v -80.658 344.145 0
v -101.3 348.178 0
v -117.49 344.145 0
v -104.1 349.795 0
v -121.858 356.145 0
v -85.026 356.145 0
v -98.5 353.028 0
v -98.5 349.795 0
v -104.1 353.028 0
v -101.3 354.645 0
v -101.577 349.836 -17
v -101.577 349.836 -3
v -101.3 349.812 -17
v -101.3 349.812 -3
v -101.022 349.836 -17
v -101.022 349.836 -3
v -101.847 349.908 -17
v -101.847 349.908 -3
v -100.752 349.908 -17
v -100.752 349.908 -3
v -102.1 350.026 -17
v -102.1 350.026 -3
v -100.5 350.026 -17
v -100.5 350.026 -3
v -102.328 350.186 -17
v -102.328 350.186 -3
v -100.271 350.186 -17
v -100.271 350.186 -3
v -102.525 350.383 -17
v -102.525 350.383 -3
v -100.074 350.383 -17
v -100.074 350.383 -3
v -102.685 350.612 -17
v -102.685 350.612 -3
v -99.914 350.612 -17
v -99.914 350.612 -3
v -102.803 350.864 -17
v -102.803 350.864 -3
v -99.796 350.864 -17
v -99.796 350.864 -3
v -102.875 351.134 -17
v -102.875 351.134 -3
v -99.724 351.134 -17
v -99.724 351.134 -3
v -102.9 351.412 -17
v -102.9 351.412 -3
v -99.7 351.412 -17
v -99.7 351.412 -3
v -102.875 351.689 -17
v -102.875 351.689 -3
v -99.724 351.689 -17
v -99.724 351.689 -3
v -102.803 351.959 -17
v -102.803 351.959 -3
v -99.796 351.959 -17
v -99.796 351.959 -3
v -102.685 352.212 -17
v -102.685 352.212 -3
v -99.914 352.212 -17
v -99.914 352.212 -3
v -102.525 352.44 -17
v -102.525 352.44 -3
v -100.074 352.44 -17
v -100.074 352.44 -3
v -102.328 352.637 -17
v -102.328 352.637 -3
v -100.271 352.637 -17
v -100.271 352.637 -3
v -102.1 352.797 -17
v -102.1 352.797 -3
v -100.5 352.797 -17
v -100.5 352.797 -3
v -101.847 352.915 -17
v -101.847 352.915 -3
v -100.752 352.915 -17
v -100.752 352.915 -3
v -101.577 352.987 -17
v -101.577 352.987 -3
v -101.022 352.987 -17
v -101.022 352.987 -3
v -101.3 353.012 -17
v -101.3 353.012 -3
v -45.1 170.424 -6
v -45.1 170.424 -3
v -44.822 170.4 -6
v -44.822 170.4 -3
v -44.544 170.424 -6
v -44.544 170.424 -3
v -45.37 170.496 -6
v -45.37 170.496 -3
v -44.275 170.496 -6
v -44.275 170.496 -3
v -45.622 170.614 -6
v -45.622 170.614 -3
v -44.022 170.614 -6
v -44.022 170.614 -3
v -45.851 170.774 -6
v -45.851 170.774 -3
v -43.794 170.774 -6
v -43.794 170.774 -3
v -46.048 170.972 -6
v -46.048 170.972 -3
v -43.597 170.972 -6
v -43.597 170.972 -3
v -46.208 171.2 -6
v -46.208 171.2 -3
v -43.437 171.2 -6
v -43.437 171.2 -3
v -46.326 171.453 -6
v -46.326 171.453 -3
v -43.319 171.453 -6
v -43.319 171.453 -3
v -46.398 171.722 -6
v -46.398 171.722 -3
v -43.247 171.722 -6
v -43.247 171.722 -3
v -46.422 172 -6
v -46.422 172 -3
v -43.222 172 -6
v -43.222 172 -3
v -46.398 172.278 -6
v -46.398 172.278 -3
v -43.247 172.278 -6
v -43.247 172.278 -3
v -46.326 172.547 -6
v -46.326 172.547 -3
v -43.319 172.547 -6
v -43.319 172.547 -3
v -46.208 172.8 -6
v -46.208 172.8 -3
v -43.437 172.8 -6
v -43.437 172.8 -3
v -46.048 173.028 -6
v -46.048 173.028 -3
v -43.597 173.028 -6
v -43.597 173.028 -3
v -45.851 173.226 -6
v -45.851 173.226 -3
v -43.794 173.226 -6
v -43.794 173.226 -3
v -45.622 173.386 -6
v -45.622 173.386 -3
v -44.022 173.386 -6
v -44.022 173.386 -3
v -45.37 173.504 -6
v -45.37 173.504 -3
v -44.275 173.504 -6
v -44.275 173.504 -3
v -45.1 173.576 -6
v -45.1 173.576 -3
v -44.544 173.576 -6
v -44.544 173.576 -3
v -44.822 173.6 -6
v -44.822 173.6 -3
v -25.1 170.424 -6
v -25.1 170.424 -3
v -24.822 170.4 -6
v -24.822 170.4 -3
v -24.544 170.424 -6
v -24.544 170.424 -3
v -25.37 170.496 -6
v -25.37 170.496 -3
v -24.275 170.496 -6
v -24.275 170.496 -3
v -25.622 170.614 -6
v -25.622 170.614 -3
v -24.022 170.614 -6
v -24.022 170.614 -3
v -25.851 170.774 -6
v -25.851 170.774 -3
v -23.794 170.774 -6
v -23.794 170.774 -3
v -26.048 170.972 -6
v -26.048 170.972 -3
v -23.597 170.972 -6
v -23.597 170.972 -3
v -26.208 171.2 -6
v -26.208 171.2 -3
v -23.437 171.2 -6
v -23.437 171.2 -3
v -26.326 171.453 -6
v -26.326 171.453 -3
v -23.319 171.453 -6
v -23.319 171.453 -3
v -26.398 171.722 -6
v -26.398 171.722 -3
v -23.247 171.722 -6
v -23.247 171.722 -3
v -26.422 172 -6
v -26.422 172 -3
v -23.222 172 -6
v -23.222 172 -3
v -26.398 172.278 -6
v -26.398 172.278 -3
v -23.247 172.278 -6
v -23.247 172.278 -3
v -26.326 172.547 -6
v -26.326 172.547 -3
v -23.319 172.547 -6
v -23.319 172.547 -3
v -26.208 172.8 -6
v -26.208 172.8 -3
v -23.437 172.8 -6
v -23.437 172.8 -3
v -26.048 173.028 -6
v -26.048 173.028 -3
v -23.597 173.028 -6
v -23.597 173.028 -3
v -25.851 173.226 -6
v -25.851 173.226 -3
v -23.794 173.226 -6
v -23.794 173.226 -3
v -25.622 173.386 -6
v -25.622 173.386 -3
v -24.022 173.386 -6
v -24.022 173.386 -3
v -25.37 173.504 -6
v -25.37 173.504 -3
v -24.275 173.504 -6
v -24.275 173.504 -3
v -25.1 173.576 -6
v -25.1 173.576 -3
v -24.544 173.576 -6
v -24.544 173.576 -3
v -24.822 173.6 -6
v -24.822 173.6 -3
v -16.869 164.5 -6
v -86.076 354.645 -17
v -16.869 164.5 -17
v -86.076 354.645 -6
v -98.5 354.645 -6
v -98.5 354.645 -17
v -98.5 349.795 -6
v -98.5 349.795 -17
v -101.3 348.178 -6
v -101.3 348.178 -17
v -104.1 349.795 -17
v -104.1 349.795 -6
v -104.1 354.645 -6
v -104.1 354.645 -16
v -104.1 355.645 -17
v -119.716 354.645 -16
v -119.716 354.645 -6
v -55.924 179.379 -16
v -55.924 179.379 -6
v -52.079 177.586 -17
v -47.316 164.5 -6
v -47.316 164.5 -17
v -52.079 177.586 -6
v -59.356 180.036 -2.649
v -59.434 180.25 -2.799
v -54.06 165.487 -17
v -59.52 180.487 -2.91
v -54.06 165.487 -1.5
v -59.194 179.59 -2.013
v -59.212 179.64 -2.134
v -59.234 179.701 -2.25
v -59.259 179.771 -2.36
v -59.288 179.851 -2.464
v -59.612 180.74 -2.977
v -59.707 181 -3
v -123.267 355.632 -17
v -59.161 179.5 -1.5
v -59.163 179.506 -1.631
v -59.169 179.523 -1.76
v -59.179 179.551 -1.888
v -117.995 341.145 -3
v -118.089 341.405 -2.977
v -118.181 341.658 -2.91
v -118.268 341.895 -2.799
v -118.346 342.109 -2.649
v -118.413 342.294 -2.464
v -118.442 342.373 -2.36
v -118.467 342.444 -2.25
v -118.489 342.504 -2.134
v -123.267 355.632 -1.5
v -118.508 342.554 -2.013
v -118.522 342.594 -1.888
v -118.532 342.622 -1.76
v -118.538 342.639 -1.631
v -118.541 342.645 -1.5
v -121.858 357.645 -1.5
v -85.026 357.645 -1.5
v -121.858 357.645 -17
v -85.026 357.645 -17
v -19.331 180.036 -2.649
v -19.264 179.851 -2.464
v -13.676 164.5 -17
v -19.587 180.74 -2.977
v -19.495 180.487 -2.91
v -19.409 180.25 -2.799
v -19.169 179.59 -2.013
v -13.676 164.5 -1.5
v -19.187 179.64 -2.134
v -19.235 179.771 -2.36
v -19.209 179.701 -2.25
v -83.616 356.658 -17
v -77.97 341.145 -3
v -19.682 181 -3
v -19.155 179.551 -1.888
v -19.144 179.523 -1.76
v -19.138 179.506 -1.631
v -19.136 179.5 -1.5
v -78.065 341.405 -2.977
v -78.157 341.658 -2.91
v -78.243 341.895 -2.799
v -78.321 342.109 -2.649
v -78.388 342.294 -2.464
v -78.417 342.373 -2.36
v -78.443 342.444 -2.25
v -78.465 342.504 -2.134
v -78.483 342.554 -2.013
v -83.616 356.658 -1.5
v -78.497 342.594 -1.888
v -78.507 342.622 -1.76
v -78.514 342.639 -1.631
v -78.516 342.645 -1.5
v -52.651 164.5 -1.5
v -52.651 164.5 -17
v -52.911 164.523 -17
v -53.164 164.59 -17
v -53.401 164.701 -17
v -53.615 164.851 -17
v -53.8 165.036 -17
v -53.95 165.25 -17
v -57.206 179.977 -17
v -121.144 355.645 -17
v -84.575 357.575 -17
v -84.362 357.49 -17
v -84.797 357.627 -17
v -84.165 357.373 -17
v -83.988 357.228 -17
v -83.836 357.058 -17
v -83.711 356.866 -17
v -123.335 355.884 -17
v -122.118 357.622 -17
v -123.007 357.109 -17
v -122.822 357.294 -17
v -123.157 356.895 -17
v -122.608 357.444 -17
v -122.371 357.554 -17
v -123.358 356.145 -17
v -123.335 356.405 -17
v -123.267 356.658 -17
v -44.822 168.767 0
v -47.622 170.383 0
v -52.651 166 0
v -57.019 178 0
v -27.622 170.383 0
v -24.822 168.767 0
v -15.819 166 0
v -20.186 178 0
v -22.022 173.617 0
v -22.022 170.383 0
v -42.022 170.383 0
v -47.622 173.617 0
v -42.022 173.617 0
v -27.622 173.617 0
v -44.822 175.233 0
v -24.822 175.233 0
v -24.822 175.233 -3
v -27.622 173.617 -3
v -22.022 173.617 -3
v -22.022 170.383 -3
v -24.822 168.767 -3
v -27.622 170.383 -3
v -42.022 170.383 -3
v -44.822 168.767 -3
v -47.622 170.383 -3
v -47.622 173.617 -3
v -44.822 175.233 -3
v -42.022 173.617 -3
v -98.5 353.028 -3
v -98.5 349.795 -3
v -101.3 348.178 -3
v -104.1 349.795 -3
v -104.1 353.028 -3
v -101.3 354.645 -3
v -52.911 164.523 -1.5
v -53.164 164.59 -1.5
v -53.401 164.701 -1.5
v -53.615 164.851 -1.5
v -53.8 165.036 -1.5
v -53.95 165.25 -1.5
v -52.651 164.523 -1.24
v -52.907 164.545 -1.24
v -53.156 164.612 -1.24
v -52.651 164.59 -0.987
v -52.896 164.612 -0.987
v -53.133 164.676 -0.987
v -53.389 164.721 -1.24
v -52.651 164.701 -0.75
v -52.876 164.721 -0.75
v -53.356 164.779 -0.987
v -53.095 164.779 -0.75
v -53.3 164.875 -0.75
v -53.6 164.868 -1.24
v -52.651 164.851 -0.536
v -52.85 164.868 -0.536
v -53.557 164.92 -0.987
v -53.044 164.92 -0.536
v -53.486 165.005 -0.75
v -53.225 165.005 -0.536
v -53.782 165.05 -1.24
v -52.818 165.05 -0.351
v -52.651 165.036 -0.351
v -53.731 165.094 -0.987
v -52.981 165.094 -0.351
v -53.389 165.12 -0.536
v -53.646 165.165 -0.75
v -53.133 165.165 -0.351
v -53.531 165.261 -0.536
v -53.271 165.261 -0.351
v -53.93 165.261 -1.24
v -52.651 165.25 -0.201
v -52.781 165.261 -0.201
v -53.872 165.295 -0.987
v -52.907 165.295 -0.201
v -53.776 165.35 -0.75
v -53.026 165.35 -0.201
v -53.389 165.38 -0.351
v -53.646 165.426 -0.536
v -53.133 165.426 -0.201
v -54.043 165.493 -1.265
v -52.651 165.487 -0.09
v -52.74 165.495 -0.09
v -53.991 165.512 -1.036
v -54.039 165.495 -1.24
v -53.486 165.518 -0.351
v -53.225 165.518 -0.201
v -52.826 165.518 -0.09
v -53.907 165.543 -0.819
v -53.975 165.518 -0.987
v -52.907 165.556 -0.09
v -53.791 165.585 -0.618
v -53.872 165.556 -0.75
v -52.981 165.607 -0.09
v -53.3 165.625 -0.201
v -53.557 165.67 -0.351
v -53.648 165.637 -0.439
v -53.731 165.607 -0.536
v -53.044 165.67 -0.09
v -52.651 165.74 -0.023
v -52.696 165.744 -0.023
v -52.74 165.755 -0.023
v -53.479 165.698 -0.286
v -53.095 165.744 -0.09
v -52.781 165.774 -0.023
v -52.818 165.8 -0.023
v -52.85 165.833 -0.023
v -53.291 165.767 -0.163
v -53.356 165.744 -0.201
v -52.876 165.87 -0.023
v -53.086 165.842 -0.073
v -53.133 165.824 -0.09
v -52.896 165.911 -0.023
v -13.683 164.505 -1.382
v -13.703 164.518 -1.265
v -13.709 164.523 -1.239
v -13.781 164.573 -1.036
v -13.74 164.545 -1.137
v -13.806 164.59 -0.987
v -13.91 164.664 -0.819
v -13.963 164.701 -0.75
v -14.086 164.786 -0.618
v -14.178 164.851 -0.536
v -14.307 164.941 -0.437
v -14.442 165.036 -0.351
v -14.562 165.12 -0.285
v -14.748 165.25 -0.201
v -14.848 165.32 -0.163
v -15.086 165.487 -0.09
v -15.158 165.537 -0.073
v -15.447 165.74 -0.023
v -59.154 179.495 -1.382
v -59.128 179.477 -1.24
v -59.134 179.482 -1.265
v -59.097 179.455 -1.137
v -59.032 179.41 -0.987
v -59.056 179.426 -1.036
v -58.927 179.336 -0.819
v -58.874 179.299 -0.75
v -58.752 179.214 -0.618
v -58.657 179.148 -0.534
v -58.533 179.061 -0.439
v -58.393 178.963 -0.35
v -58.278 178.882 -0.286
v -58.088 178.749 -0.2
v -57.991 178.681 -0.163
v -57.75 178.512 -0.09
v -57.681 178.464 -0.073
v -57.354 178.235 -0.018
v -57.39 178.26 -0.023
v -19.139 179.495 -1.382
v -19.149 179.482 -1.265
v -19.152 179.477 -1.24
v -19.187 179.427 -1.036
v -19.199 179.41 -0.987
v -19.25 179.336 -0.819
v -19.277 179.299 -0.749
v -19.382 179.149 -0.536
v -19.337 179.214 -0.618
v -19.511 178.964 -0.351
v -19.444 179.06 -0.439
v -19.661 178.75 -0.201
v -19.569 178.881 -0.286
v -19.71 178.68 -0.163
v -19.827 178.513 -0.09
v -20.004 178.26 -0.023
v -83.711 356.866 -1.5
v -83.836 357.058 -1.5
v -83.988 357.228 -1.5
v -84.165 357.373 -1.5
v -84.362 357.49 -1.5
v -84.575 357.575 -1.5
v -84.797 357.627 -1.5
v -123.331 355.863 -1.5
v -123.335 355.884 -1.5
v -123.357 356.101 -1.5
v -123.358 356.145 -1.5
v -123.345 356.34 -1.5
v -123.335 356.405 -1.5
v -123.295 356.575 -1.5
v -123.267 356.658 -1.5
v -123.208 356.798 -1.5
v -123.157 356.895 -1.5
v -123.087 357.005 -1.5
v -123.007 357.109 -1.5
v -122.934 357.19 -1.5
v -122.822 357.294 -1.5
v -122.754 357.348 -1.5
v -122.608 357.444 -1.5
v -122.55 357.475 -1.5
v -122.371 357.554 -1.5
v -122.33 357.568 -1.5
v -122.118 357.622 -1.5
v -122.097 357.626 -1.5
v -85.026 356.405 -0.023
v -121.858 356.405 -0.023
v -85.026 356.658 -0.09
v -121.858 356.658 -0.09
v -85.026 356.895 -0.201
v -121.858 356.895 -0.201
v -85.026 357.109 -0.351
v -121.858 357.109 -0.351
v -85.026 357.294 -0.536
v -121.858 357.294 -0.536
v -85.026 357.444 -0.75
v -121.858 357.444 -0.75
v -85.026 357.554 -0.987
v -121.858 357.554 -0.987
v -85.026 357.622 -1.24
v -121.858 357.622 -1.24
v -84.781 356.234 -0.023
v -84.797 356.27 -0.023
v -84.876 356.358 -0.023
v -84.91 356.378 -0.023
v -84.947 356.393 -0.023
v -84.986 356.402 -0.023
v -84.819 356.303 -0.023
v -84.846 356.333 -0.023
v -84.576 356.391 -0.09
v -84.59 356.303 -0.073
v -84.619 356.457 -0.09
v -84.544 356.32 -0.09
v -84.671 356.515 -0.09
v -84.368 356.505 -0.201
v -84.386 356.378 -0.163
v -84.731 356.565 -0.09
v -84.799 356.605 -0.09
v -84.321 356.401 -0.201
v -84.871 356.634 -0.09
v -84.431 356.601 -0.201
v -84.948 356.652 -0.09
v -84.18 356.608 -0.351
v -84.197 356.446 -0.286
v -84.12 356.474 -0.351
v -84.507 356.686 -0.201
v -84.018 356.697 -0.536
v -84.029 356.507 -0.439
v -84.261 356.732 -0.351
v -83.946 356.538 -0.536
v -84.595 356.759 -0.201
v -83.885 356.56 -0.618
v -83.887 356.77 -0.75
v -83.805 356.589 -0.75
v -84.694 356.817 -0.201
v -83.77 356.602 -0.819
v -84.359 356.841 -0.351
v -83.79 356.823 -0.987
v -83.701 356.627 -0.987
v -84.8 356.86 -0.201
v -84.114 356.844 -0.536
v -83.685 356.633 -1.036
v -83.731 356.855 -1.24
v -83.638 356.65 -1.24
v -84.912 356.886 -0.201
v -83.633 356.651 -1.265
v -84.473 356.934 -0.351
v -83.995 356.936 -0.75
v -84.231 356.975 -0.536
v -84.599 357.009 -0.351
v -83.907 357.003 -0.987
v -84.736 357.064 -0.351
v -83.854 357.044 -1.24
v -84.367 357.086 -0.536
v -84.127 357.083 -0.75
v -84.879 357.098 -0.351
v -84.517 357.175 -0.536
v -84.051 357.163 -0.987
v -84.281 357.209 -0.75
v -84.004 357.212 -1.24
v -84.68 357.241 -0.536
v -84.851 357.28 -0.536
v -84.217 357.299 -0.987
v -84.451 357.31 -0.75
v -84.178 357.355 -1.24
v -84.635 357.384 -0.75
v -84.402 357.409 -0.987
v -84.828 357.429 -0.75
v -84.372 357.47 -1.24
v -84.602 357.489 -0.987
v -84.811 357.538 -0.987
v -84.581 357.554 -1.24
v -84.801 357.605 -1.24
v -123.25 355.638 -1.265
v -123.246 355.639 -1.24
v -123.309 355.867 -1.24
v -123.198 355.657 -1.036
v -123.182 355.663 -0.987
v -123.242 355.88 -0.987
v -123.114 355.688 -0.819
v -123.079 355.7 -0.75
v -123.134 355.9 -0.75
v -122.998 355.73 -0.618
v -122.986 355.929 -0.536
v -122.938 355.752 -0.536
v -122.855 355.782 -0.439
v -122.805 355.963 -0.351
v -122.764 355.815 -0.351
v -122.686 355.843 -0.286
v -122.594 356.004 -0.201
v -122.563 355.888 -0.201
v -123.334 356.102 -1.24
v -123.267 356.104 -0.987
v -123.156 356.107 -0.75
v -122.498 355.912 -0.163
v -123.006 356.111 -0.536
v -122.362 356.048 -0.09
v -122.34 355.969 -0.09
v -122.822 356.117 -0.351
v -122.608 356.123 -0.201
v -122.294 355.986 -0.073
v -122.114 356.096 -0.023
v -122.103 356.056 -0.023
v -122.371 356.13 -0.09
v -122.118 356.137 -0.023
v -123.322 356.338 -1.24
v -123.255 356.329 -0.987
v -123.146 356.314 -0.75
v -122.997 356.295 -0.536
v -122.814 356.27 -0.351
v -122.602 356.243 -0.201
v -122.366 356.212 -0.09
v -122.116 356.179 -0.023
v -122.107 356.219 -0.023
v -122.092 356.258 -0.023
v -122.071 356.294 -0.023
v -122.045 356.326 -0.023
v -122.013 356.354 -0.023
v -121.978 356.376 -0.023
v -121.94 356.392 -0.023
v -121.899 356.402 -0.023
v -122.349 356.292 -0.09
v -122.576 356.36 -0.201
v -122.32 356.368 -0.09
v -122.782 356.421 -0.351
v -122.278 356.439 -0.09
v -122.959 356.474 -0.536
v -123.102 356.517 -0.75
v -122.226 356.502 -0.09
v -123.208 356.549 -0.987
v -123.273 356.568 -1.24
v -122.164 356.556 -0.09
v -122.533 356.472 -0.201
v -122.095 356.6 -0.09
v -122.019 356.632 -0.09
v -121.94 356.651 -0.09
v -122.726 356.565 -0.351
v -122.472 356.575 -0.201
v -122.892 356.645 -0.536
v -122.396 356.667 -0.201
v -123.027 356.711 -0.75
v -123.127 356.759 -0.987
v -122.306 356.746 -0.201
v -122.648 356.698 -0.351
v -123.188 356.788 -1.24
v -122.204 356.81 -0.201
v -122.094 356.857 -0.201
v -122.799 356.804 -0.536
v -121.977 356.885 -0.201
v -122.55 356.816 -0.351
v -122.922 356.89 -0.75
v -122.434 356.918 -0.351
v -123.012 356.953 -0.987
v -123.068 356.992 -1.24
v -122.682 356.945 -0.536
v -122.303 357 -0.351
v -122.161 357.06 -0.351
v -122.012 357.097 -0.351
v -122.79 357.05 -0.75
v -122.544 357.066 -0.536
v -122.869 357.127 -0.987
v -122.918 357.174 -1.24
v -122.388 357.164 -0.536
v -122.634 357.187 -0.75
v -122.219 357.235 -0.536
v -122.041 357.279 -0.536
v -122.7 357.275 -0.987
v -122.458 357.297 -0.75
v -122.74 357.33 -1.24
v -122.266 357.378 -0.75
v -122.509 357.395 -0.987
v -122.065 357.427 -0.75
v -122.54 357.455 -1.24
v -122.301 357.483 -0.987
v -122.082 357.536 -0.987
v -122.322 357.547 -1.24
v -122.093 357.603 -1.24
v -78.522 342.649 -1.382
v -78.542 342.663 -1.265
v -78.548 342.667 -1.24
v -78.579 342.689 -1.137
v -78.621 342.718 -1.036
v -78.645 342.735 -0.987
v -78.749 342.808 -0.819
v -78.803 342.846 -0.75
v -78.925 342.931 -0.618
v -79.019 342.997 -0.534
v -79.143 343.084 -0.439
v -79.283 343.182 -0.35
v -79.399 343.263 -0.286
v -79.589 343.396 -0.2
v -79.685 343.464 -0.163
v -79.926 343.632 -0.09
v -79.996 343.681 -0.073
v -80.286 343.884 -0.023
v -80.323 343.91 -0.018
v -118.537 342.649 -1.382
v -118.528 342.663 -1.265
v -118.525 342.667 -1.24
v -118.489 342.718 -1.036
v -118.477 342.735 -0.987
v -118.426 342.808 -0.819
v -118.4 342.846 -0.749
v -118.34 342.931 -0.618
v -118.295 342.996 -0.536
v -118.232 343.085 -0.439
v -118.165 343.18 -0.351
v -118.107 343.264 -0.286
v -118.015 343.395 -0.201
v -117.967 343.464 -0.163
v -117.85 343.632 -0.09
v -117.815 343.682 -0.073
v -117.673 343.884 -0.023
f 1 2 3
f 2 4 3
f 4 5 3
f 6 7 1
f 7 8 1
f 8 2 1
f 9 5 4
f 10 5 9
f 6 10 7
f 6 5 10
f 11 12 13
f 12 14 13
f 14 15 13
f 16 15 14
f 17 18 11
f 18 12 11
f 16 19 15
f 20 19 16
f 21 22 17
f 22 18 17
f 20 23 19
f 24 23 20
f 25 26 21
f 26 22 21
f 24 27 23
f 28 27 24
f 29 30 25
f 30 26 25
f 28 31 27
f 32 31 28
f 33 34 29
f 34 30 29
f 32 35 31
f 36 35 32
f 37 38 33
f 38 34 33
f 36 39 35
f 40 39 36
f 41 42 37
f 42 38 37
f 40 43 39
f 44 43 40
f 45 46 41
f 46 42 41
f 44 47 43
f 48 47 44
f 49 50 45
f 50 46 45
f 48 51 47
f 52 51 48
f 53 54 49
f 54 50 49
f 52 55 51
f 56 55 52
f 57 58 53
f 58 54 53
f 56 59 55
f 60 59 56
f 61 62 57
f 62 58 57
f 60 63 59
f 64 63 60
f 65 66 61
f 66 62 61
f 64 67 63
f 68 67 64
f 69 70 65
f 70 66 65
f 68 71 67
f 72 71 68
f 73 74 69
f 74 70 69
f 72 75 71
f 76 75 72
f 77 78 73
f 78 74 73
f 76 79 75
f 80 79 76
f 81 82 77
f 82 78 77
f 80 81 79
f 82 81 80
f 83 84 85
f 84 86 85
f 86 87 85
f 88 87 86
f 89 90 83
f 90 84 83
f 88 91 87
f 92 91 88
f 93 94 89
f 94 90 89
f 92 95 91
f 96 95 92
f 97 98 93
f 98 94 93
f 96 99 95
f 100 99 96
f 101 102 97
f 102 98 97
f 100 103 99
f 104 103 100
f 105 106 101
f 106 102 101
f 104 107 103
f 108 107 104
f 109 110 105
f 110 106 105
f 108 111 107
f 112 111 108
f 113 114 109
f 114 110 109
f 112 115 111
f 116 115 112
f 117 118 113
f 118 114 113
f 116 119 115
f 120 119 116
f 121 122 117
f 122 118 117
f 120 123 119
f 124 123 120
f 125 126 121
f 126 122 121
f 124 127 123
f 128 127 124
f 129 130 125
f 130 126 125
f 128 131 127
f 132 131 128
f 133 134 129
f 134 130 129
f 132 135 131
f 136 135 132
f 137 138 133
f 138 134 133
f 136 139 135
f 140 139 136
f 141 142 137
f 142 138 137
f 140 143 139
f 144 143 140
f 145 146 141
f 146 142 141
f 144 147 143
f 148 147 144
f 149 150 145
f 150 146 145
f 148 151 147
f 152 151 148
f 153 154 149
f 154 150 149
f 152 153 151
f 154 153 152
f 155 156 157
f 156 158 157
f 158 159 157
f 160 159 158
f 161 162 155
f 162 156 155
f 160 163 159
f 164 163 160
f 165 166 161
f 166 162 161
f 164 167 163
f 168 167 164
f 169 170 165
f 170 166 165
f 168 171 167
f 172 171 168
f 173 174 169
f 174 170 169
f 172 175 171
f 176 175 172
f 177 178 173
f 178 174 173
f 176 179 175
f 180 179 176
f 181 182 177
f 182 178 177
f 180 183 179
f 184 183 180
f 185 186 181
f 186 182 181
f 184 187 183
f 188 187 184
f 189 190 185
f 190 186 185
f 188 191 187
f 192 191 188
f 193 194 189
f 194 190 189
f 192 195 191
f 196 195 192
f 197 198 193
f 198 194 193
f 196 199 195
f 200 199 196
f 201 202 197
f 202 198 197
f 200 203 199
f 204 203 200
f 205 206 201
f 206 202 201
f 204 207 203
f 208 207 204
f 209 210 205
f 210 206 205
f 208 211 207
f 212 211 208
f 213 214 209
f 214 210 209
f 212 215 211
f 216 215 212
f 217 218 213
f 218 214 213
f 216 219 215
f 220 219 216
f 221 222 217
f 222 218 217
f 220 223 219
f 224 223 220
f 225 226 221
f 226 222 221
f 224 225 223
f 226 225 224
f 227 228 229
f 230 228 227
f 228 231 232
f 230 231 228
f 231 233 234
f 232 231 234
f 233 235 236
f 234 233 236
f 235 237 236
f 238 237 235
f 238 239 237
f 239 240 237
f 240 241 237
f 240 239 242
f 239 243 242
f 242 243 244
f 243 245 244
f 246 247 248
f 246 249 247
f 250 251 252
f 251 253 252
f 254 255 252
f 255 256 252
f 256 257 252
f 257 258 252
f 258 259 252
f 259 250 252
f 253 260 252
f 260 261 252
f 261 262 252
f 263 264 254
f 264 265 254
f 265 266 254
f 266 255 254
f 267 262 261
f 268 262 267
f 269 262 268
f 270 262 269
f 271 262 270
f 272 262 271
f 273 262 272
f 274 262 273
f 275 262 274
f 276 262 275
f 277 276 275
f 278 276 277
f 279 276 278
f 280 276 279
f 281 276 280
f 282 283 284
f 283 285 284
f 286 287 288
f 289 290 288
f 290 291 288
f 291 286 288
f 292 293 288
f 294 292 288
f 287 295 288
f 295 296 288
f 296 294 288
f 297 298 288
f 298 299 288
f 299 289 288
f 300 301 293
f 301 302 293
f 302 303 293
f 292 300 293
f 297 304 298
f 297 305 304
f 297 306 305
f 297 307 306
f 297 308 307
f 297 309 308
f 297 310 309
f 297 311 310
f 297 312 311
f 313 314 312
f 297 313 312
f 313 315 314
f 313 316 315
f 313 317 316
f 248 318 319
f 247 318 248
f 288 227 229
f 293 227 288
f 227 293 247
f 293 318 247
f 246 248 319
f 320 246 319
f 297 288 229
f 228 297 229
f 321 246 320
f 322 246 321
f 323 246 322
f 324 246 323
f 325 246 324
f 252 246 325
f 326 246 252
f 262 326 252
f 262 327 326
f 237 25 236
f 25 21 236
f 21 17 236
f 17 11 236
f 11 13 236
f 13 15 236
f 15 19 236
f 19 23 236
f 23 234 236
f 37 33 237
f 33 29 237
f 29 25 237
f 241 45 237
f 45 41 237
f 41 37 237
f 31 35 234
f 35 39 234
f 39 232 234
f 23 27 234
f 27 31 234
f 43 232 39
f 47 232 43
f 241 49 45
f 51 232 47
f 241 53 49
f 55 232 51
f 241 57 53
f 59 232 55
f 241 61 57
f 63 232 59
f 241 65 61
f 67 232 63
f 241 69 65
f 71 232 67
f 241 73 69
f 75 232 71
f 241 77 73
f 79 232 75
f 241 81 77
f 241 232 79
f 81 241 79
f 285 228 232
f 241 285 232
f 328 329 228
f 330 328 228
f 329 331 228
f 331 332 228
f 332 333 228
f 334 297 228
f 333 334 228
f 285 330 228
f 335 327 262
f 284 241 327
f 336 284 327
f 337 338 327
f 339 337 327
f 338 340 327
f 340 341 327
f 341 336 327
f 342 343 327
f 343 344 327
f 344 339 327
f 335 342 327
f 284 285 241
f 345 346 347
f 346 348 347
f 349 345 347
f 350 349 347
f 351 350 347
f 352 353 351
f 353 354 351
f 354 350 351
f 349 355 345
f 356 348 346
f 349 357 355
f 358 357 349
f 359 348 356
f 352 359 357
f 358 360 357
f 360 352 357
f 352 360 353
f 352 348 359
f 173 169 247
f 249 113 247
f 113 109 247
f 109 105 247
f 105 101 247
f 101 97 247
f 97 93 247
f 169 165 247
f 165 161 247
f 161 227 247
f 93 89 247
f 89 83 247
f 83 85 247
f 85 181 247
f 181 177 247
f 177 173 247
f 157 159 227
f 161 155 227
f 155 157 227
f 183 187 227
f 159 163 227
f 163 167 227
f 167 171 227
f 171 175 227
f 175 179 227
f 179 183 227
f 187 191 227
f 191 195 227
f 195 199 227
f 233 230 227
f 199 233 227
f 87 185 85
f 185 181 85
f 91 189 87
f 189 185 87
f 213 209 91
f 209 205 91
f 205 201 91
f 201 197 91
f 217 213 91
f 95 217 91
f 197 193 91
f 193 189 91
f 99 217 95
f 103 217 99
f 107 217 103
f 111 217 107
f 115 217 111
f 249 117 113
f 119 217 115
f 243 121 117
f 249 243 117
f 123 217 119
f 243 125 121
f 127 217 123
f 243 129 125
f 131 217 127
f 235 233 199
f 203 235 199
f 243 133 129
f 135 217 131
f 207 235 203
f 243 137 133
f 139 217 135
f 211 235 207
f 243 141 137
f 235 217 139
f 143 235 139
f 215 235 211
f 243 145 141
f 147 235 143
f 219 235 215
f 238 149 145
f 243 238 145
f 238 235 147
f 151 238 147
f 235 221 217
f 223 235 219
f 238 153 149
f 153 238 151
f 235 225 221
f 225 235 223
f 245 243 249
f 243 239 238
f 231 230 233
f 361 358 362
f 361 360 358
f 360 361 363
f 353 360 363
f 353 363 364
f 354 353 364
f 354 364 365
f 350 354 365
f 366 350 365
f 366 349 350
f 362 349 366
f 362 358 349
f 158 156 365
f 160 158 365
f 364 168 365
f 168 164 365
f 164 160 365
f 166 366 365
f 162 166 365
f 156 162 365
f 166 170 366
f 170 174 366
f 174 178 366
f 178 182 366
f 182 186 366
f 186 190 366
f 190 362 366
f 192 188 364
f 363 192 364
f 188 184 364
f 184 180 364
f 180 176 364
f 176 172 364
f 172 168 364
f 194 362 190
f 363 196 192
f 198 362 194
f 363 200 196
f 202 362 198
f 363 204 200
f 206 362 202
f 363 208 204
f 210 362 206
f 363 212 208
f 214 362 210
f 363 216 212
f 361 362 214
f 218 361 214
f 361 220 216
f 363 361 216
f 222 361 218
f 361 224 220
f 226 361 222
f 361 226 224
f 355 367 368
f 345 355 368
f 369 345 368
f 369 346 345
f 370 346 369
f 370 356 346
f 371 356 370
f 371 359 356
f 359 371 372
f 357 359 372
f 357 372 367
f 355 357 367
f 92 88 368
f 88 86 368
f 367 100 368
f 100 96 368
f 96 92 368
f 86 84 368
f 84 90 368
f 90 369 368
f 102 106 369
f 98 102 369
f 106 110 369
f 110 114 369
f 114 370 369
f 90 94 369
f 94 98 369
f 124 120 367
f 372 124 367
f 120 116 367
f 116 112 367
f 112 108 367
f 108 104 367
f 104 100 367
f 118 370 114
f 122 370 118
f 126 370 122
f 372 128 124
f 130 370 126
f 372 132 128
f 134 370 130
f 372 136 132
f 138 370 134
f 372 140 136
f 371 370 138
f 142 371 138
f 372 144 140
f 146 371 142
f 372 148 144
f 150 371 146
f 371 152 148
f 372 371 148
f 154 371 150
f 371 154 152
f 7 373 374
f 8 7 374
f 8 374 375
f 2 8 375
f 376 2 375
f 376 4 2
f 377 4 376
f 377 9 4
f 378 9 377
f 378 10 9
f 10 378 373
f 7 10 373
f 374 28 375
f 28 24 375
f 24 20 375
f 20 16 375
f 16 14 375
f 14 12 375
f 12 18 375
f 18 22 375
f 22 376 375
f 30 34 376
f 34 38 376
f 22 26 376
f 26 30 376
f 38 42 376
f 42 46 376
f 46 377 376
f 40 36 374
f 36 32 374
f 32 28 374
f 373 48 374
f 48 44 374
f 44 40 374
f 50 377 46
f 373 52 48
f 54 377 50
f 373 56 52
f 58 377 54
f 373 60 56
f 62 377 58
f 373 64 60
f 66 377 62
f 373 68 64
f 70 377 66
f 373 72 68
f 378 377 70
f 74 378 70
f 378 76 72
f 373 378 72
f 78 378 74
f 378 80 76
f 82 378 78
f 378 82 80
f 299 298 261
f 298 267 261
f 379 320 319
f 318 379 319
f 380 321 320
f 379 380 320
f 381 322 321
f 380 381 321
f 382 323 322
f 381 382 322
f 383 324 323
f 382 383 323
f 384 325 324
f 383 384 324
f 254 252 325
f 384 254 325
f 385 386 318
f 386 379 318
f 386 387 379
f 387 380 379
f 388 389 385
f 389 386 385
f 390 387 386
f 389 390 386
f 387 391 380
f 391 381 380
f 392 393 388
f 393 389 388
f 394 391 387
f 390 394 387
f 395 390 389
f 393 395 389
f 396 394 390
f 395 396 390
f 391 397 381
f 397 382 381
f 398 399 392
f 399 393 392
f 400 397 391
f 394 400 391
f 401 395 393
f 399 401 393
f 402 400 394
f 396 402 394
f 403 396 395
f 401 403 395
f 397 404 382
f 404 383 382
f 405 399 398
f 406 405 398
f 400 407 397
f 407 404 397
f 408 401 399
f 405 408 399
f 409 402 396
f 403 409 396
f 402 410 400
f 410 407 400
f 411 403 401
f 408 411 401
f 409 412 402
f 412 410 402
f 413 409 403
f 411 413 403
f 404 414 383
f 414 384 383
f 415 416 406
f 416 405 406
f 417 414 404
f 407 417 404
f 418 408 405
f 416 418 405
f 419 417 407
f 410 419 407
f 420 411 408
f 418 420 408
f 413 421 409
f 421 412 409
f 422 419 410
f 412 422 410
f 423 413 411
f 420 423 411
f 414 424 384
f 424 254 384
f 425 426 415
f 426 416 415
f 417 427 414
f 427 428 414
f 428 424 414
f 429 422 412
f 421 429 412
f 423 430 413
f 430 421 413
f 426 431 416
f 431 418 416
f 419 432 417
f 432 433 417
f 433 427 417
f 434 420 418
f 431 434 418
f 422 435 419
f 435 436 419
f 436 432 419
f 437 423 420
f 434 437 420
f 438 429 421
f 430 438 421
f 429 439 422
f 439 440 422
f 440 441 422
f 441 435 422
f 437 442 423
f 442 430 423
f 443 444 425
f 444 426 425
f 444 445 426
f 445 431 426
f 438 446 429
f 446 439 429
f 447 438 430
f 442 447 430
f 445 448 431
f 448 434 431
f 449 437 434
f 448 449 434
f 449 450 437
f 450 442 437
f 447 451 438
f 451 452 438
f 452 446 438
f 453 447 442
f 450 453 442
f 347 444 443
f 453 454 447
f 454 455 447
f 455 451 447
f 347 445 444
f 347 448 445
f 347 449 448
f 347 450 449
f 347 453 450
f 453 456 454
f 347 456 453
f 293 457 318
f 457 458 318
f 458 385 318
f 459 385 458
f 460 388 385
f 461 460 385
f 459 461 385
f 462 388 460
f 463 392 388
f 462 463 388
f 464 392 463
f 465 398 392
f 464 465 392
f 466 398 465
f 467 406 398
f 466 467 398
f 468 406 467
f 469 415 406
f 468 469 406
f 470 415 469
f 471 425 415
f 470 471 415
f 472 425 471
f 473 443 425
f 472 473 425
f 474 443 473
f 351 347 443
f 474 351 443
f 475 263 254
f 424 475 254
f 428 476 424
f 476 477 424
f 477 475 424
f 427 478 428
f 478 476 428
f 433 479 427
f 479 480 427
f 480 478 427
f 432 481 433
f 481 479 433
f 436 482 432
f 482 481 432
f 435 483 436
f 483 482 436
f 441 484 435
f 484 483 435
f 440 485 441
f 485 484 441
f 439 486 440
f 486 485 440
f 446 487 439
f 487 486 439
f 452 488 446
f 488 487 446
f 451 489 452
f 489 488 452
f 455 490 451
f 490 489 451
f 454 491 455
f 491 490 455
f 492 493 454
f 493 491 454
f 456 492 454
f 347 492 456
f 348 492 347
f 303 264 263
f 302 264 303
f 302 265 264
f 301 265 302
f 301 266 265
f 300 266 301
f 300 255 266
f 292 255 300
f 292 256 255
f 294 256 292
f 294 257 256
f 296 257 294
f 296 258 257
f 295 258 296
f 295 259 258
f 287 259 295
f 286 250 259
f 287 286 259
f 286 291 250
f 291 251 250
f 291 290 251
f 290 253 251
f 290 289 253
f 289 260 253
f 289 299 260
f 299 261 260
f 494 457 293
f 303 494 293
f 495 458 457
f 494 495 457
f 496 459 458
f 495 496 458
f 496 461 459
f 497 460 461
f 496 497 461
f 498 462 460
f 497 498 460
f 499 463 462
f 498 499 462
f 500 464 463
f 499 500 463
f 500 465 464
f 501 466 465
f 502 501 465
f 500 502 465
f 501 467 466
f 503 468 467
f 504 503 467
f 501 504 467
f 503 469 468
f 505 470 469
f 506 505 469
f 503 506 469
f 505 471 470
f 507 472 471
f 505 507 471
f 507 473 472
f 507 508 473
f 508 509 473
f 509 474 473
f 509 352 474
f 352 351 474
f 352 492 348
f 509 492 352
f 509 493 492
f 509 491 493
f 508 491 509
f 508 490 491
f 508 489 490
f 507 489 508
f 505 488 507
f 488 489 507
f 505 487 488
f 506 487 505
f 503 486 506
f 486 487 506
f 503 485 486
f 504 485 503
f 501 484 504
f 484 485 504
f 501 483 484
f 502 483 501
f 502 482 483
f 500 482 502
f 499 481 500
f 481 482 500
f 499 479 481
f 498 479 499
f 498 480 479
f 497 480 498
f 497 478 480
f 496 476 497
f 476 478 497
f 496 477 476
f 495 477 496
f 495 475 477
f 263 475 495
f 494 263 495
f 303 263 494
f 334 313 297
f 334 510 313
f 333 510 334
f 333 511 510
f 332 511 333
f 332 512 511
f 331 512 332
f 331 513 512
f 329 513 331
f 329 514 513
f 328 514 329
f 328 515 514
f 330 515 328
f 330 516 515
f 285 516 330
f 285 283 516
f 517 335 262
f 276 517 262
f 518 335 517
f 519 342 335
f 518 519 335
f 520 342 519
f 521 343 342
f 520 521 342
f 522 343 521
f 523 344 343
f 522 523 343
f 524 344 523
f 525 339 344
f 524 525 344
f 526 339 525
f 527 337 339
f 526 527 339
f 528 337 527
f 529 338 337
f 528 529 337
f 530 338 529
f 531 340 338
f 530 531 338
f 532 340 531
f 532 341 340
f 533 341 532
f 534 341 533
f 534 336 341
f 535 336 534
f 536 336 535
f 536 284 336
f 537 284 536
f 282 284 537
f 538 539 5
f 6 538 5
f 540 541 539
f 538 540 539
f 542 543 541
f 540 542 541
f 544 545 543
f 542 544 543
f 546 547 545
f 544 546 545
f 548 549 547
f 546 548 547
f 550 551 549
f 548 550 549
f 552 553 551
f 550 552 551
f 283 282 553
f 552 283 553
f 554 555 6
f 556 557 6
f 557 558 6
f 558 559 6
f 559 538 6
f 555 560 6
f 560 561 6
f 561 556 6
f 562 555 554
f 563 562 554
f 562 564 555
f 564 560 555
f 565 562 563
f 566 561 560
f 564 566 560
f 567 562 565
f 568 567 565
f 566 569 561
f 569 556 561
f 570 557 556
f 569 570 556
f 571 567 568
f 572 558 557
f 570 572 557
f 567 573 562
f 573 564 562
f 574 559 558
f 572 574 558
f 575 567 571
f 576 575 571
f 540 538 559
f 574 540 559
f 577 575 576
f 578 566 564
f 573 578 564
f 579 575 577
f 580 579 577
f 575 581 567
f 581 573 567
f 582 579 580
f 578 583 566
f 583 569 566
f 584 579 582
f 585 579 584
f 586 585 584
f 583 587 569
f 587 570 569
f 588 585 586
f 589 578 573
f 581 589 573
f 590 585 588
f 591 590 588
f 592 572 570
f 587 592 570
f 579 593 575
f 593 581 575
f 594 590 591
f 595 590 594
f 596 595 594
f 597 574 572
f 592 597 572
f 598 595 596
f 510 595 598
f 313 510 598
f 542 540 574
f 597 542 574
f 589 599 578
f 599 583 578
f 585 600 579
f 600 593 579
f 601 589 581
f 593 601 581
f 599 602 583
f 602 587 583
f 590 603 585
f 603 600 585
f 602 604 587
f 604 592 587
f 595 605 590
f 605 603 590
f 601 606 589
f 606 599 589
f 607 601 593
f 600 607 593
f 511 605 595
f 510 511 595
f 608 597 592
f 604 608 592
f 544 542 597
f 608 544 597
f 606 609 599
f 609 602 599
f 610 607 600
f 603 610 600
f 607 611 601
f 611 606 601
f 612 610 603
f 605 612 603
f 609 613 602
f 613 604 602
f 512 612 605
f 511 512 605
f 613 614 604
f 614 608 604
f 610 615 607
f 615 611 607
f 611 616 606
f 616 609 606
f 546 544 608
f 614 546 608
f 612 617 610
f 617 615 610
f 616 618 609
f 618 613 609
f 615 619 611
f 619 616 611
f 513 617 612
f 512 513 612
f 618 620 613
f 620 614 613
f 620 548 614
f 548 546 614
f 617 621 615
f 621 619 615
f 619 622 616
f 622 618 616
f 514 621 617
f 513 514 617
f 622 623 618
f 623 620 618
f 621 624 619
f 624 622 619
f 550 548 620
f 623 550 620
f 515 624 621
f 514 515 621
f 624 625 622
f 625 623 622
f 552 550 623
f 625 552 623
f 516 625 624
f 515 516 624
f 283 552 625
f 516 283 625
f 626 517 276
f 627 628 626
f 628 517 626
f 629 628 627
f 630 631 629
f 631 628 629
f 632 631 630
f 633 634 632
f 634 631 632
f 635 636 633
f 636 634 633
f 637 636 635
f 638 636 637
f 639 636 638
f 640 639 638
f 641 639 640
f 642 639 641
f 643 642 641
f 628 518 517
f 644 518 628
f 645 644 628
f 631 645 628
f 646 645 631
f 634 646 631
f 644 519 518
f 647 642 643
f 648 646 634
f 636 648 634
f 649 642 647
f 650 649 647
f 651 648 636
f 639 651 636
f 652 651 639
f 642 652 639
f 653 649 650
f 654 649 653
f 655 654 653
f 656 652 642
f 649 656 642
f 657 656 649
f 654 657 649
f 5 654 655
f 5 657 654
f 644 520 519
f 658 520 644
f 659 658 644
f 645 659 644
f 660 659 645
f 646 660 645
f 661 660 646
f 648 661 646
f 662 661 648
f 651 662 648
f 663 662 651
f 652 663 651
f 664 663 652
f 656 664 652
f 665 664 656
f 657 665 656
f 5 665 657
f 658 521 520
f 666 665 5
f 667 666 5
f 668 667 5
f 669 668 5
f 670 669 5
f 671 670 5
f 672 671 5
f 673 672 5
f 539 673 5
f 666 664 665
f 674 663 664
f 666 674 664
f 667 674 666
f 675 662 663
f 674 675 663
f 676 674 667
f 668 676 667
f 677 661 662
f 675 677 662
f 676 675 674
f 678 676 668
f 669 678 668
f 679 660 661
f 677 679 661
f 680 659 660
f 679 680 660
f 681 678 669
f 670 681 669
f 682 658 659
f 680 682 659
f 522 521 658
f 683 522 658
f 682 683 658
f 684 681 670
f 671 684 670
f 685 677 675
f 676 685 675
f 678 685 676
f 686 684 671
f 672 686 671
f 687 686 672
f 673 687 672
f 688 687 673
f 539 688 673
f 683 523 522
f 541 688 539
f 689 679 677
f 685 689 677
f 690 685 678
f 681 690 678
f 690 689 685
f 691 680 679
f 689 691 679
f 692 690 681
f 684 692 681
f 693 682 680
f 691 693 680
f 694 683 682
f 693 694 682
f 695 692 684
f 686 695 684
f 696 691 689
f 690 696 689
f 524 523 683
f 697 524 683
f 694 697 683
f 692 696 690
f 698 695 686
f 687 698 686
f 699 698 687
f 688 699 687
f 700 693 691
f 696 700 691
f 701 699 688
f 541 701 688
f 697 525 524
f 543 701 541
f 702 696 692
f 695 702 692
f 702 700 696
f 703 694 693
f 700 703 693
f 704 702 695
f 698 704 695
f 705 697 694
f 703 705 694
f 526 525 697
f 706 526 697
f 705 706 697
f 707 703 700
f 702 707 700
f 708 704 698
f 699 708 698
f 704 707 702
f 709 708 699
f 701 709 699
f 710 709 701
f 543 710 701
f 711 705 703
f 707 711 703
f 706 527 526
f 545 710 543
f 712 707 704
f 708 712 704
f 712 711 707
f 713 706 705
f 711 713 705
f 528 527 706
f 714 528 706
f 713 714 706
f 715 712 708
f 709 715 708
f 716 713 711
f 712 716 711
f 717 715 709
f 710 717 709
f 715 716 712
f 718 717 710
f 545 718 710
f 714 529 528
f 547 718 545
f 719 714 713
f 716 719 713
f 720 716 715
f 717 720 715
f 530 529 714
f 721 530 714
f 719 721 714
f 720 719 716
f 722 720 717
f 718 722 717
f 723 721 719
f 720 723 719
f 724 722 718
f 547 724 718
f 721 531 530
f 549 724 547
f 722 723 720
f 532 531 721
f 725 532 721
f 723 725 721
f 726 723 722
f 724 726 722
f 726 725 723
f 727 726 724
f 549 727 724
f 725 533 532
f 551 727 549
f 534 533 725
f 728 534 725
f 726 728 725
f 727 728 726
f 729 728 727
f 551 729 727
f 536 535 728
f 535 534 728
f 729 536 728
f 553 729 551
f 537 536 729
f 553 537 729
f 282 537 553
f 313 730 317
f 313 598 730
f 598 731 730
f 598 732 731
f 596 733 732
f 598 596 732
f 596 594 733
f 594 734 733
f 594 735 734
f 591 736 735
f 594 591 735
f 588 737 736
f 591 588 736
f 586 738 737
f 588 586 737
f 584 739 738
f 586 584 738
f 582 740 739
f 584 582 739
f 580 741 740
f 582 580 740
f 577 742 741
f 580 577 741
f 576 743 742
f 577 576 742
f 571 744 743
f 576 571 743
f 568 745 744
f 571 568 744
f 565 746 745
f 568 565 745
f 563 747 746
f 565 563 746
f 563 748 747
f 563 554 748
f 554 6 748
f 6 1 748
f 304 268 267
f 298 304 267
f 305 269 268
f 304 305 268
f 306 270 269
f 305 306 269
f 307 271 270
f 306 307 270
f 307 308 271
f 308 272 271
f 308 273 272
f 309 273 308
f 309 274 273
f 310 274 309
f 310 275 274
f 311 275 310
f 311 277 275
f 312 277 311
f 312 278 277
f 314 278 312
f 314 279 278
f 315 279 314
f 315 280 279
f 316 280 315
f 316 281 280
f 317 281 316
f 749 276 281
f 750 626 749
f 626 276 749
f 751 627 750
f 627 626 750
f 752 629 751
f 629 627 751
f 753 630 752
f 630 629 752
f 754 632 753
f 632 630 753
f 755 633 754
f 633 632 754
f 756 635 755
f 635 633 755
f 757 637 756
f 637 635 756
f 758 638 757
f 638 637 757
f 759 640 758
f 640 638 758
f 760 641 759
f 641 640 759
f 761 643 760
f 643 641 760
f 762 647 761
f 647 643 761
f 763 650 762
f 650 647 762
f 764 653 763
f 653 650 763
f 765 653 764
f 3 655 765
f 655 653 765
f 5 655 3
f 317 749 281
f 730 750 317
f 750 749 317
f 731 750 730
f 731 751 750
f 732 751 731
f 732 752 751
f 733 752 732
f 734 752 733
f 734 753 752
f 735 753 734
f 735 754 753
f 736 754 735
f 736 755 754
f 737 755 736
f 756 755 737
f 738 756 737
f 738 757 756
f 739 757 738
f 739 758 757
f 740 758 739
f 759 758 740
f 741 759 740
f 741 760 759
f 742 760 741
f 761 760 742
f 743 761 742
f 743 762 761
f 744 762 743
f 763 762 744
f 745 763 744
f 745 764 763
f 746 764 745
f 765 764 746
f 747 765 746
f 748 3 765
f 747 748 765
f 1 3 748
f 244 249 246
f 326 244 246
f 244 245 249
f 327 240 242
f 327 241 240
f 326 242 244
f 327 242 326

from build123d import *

# Parameters (mm, degrees)
SKETCH2_R           = 1.6
BOSS_EXTRUDE1_DEPTH = 17
SKETCH2_17_R        = 1.6
BOSS_EXTRUDE2_DEPTH = 6
CUT_EXTRUDE1_DEPTH  = 3
CUT_EXTRUDE2_DEPTH  = 3
FILLET1_R           = 1.5
CHAMFER3_SIZE       = 1


# Some blends are built 0.0001 mm under size
with BuildPart() as part:
    # Sketch2 → Boss-Extrude1 (new body)
    with BuildSketch(Plane.XY):
        Polygon((-47.316130455, 164.5), (-52.0477435, 177.5), (-55.240276817, 177.5), (-119.71566449, 354.644671741), (-104.09954666, 354.644671741), (-104.09954666, 349.79492948), (-101.29954666, 348.178348727), (-98.49954666, 349.79492948), (-98.49954666, 354.644671741), (-86.075962148, 354.644671741), (-16.868961429, 164.5), (-13.676428112, 164.5), (-83.975339533, 357.644671741), (-124.00010851, 357.644671741), (-53.701197089, 164.5), align=None)
        with Locations((-101.29954666, 351.411510234)):
            Circle(SKETCH2_R, mode=Mode.SUBTRACT)
    extrude(amount=-BOSS_EXTRUDE1_DEPTH)

    # Sketch2<17> → Boss-Extrude2 (add)
    with BuildSketch(Plane.XY):
        Polygon((-52.0477435, 177.5), (-47.316130455, 164.5), (-16.868961429, 164.5), (-86.075962148, 354.644671741), (-98.49954666, 354.644671741), (-98.49954666, 349.79492948), (-101.29954666, 348.178348727), (-104.09954666, 349.79492948), (-104.09954666, 354.644671741), (-119.71566449, 354.644671741), (-55.240276817, 177.5), align=None)
        with Locations((-44.822322699, 172)):
            Circle(SKETCH2_17_R, mode=Mode.SUBTRACT)
        with Locations((-24.822322699, 172)):
            Circle(SKETCH2_17_R, mode=Mode.SUBTRACT)
    extrude(amount=-BOSS_EXTRUDE2_DEPTH)

    # Sketch2<18> → Cut-Extrude1 (cut)
    with BuildSketch(Plane.XY):
        Polygon((-24.822322699, 168.766838493), (-22.022322699, 170.383419246), (-22.022322699, 173.616580754), (-24.822322699, 175.233161507), (-27.622322699, 173.616580754), (-27.622322699, 170.383419246), align=None)
        Polygon((-44.822322699, 168.766838493), (-42.022322699, 170.383419246), (-42.022322699, 173.616580754), (-44.822322699, 175.233161507), (-47.622322699, 173.616580754), (-47.622322699, 170.383419246), align=None)
        Polygon((-101.29954666, 354.644671741), (-104.09954666, 353.028090988), (-104.09954666, 349.79492948), (-101.29954666, 348.178348727), (-98.49954666, 349.79492948), (-98.49954666, 353.028090988), align=None)
    extrude(amount=-CUT_EXTRUDE1_DEPTH, mode=Mode.SUBTRACT)

    # Sketch5 → Cut-Extrude2 (cut)
    with BuildSketch(Plane.XY):
        Polygon((-118.540554996, 342.644671741), (-78.515786019, 342.644671741), (-19.135981626, 179.5), (-59.160750603, 179.5), align=None)
    extrude(amount=-CUT_EXTRUDE2_DEPTH, mode=Mode.SUBTRACT)

    # Fillet1
    fillet1_edges = [part.edges().sort_by_distance(p)[0] for p in [
        (-121.270331753, 350.144671741, 0),
        (-81.245562776, 350.144671741, 0),
        (-39.148366115, 179.5, 0),
        (-98.528170508, 342.644671741, 0),
        (-98.528170508, 342.644671741, -3),
        (-39.148366115, 179.5, -3),
        (-56.430973846, 172, 0),
        (-103.987724022, 357.644671741, 0),
        (-16.406204869, 172, 0),
        (-33.688812601, 164.5, 0),
        (-53.701197089, 164.5, -8.5),
        (-124.00010851, 357.644671741, -8.5),
        (-83.975339533, 357.644671741, -8.5),
    ]]
    fillet(fillet1_edges, radius=FILLET1_R - 0.0001)  # a hair under: the kernel refuses the full size

    # Chamfer2
    # the kernel refuses this chamfer: 3.34631437, 2 mm, written as the material it adds along each edge
    with BuildSketch(Plane(origin=(-55.240276817, 177.5, -6), x_dir=(0.9998669641130704, -0.01631116413110759, 0), z_dir=(0, 0, -1))) as chamfer2_piece_1_section:
        with BuildLine():
            Line((3.468087381, 0), (-0.836822437, -1.922560005))
            Line((-0.836822437, -1.922560005), (-0.899330844, -1.898647101))
            ThreePointArc((-0.899330844, -1.898647101), (-0.436719507, -0.954276075), (-0.062508407, 0.023912905))
            Line((-0.062508407, 0.023912905), (0.001091646, 0.066917384))
            ThreePointArc((0.001091646, 0.066917384), (1.734673987, 0.038636875), (3.469179027, 0.066917384))
            Line((3.469179027, 0.066917384), (3.468087381, 0))
        make_face()
    chamfer2_piece_1 = extrude(amount=11, mode=Mode.PRIVATE)
    chamfer2_piece_1 = split(chamfer2_piece_1, bisect_by=Plane(origin=(-52.5138481, 178.780611864, -11.5), z_dir=(-0.9396926207859072, -0.34202014332567215, 0)), keep=Keep.TOP, mode=Mode.PRIVATE)
    add(chamfer2_piece_1)

    # Chamfer3
    chamfer3_edges = [part.edges().sort_by_distance(p)[0] for p in [
        (-87.819990797, 267.012028492, -17),
        (-111.907605575, 354.644671741, -17),
    ]]
    chamfer(chamfer3_edges, length=CHAMFER3_SIZE)


solid = part.part
